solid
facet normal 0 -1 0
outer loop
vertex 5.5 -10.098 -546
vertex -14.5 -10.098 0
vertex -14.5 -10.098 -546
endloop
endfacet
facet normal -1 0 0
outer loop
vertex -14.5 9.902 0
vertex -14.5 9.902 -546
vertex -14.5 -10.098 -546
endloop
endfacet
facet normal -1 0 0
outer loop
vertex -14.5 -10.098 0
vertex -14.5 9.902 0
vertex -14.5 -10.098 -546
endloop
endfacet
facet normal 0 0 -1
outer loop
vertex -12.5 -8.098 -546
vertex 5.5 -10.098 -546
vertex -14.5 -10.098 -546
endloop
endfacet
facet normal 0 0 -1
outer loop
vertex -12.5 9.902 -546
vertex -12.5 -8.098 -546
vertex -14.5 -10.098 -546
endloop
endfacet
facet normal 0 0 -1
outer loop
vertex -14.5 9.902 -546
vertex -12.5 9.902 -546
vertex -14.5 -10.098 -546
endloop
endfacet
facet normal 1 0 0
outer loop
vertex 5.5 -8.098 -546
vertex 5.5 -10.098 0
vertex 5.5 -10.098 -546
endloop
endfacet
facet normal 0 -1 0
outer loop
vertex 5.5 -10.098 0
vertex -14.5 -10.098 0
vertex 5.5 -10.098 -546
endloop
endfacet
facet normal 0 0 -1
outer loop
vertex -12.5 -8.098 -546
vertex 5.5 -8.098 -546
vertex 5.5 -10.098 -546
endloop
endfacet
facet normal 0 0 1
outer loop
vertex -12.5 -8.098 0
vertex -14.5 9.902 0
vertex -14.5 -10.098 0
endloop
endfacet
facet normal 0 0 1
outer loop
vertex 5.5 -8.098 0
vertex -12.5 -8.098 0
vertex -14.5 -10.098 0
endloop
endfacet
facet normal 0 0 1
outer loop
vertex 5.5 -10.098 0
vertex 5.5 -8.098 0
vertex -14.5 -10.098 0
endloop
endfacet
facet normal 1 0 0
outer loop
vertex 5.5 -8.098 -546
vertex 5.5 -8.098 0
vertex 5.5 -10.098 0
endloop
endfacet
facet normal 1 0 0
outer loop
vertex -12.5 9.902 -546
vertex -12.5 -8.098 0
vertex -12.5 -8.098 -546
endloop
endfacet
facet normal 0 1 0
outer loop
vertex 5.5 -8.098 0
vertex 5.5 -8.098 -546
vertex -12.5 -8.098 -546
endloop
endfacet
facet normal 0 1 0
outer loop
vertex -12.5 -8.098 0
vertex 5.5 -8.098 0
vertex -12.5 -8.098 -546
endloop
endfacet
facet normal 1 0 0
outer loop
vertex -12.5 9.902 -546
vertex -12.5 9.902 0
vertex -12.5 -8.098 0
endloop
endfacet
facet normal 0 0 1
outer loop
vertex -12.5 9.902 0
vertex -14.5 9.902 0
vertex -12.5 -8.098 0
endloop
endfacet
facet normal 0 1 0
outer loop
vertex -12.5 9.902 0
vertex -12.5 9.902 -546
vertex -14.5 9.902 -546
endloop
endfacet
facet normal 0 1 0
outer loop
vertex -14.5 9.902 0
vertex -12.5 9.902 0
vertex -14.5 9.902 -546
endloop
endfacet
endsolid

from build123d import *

# Parameters (mm, degrees)
BOSS_EXTRUDE1_DEPTH = 546


with BuildPart() as part:
    # Sketch1 → Boss-Extrude1 (new body)
    with BuildSketch(Plane.XY):
        Polygon((-12.500374185, 9.902439024), (-14.500374185, 9.902439024), (-14.500374185, -10.097560976), (5.499625815, -10.097560976), (5.499625815, -8.097560976), (-12.500374185, -8.097560976), align=None)
    extrude(amount=-BOSS_EXTRUDE1_DEPTH)


solid = part.part
